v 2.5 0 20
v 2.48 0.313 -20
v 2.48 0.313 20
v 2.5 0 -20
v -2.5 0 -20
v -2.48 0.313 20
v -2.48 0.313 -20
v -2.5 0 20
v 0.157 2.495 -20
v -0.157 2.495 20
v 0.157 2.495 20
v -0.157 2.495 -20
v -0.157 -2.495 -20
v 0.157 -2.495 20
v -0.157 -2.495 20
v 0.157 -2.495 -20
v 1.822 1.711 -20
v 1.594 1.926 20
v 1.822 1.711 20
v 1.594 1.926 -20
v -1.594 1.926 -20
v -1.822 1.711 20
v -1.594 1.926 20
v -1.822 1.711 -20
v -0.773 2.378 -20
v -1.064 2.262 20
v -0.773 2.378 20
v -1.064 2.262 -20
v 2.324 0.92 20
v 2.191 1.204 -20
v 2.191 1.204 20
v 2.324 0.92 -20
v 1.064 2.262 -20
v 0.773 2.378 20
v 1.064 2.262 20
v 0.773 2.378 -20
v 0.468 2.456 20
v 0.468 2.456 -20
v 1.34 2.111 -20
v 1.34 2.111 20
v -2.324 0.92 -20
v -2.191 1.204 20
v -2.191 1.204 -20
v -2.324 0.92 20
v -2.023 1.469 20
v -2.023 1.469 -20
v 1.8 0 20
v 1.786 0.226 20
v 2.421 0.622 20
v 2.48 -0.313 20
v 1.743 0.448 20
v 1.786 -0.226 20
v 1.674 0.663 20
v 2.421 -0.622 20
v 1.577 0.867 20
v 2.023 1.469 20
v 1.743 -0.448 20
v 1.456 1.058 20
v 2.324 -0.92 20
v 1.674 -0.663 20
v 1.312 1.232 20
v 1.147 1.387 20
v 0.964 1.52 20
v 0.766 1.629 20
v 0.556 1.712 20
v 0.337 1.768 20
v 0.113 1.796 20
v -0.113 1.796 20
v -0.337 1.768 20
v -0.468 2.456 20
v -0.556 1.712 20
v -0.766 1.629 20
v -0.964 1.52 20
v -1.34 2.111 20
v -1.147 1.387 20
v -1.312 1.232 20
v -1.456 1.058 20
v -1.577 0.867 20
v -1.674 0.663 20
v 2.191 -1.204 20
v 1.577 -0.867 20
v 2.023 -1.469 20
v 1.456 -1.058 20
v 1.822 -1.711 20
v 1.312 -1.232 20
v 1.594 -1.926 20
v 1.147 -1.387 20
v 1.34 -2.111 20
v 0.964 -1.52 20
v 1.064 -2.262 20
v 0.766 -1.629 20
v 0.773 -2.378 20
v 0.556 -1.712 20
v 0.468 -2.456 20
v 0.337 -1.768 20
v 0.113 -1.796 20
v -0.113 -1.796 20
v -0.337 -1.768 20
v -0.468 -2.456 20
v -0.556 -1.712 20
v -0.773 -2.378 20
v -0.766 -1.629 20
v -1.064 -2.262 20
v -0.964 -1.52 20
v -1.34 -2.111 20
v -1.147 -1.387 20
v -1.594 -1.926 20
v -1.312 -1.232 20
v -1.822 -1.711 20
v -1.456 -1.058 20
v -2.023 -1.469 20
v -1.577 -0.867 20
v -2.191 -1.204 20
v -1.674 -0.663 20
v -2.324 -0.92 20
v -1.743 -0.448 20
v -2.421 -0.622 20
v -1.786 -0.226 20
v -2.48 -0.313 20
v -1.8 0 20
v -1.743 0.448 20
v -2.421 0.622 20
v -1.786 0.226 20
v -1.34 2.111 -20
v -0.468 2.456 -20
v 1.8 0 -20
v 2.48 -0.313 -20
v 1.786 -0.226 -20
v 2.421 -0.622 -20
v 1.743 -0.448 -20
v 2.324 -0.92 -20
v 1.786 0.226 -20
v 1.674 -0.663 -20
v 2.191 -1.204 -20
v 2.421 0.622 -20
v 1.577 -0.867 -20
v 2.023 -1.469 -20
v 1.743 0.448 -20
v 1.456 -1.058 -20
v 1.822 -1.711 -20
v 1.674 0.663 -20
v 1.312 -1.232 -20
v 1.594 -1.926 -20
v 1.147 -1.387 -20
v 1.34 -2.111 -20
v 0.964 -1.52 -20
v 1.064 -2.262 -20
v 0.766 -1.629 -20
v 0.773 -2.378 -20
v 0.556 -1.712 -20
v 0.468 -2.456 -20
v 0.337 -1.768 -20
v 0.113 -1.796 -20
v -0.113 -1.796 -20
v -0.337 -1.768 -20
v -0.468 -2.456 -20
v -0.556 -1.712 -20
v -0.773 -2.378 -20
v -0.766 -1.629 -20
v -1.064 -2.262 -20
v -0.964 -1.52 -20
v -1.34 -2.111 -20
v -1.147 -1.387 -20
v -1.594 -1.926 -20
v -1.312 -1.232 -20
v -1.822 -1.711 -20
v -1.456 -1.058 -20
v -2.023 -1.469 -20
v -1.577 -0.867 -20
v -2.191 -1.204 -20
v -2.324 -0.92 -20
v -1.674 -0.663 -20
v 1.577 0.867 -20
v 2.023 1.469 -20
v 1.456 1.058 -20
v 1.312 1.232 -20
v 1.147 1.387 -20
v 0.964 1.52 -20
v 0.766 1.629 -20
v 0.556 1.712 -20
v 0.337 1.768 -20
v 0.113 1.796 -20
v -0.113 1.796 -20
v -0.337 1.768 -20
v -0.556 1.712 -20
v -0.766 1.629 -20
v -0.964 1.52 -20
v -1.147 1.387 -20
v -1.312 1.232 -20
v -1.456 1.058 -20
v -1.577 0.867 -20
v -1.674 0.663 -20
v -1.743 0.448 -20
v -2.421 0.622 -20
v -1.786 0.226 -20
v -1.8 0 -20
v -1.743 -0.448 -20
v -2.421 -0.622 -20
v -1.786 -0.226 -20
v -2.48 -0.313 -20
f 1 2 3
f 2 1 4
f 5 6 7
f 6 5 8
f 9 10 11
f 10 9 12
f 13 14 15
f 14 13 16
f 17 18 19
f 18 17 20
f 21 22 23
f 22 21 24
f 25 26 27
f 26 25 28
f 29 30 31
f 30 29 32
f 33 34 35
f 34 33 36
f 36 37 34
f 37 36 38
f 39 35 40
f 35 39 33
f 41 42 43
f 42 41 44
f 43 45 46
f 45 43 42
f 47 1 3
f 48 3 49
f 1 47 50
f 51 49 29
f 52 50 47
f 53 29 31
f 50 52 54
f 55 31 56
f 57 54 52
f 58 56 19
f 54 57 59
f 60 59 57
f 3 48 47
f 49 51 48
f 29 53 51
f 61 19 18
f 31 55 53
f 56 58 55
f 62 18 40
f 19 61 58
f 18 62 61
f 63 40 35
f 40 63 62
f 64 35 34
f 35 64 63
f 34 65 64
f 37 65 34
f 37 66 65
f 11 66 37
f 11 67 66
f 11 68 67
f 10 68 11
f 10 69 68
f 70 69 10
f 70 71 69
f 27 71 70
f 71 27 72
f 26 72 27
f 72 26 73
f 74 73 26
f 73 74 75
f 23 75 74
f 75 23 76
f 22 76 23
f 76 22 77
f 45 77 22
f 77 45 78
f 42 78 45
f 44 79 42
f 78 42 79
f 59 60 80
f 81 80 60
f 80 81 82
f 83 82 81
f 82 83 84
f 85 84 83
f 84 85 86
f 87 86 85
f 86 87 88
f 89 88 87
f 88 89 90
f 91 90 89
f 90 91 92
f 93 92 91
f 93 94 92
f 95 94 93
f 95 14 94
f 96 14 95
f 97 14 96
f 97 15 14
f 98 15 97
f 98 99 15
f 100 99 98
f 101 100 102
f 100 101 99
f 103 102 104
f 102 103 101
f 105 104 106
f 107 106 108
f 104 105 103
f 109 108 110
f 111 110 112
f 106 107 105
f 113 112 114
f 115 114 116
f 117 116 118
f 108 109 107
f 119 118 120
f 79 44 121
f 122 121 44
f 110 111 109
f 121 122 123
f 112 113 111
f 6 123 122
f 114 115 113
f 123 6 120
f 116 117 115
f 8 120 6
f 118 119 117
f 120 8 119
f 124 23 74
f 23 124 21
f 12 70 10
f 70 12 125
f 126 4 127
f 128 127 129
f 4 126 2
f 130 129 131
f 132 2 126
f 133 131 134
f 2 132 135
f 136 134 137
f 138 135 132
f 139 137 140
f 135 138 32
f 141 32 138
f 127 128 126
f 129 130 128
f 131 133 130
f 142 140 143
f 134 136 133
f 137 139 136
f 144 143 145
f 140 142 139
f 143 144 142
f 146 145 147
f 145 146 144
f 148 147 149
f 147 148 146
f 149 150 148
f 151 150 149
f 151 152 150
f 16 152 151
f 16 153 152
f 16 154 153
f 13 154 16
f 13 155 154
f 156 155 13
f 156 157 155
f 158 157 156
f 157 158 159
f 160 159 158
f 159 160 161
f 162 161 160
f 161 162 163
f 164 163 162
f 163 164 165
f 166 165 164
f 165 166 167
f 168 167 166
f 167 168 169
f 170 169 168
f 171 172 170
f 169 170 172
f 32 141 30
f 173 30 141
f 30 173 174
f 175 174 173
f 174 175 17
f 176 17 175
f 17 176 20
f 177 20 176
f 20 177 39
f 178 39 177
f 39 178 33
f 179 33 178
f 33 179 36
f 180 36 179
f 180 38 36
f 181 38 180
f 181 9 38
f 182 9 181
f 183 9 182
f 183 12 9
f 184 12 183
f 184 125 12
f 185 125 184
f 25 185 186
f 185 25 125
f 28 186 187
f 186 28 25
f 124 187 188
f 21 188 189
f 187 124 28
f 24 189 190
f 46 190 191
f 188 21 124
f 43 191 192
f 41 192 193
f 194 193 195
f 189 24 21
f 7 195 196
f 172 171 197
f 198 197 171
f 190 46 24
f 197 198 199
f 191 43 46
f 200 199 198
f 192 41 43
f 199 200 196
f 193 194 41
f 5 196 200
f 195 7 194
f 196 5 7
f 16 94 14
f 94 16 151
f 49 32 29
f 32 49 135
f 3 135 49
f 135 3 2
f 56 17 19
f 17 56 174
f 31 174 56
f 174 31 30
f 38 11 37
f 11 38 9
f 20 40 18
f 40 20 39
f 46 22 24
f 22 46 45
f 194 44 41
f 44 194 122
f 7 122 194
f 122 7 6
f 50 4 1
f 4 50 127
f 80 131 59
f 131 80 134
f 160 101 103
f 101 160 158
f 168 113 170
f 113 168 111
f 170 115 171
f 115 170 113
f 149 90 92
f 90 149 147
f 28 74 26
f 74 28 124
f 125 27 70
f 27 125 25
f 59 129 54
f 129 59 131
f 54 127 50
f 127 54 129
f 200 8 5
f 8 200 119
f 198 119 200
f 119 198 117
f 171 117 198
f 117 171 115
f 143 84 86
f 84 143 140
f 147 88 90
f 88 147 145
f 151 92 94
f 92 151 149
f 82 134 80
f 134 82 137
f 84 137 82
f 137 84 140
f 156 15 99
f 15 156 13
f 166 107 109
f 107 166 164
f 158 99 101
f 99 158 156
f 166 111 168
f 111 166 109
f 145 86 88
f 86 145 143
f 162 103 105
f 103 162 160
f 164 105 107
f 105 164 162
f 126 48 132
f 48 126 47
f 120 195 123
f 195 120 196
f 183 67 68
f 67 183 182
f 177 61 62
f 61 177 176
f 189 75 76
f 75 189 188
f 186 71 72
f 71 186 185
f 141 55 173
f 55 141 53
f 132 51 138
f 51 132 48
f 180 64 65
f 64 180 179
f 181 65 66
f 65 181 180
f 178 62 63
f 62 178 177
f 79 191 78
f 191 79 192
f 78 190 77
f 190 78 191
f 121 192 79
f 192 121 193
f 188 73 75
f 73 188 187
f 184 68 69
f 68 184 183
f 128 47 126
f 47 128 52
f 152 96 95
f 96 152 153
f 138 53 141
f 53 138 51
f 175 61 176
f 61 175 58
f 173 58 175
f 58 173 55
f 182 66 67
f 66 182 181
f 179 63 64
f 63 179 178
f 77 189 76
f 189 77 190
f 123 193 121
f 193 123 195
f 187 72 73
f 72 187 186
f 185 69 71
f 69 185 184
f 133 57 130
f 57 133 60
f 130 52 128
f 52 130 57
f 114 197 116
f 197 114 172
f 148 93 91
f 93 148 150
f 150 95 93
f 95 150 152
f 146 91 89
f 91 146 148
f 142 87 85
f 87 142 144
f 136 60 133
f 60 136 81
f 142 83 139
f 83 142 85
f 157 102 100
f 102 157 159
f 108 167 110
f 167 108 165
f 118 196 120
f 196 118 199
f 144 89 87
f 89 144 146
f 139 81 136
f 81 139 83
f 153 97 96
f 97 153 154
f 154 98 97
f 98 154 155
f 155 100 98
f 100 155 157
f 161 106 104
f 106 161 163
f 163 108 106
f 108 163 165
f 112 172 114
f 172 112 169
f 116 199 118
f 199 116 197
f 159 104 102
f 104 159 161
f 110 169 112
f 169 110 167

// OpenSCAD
$fn = 50;


difference() {
	union() {
		translate(v = [0, 0, -20.0000000000]) {
			cylinder(h = 40, r = 2.5000000000);
		}
	}
	union() {
		translate(v = [0, 0, -100.0000000000]) {
			cylinder(h = 200, r = 1.8000000000);
		}
	}
}
